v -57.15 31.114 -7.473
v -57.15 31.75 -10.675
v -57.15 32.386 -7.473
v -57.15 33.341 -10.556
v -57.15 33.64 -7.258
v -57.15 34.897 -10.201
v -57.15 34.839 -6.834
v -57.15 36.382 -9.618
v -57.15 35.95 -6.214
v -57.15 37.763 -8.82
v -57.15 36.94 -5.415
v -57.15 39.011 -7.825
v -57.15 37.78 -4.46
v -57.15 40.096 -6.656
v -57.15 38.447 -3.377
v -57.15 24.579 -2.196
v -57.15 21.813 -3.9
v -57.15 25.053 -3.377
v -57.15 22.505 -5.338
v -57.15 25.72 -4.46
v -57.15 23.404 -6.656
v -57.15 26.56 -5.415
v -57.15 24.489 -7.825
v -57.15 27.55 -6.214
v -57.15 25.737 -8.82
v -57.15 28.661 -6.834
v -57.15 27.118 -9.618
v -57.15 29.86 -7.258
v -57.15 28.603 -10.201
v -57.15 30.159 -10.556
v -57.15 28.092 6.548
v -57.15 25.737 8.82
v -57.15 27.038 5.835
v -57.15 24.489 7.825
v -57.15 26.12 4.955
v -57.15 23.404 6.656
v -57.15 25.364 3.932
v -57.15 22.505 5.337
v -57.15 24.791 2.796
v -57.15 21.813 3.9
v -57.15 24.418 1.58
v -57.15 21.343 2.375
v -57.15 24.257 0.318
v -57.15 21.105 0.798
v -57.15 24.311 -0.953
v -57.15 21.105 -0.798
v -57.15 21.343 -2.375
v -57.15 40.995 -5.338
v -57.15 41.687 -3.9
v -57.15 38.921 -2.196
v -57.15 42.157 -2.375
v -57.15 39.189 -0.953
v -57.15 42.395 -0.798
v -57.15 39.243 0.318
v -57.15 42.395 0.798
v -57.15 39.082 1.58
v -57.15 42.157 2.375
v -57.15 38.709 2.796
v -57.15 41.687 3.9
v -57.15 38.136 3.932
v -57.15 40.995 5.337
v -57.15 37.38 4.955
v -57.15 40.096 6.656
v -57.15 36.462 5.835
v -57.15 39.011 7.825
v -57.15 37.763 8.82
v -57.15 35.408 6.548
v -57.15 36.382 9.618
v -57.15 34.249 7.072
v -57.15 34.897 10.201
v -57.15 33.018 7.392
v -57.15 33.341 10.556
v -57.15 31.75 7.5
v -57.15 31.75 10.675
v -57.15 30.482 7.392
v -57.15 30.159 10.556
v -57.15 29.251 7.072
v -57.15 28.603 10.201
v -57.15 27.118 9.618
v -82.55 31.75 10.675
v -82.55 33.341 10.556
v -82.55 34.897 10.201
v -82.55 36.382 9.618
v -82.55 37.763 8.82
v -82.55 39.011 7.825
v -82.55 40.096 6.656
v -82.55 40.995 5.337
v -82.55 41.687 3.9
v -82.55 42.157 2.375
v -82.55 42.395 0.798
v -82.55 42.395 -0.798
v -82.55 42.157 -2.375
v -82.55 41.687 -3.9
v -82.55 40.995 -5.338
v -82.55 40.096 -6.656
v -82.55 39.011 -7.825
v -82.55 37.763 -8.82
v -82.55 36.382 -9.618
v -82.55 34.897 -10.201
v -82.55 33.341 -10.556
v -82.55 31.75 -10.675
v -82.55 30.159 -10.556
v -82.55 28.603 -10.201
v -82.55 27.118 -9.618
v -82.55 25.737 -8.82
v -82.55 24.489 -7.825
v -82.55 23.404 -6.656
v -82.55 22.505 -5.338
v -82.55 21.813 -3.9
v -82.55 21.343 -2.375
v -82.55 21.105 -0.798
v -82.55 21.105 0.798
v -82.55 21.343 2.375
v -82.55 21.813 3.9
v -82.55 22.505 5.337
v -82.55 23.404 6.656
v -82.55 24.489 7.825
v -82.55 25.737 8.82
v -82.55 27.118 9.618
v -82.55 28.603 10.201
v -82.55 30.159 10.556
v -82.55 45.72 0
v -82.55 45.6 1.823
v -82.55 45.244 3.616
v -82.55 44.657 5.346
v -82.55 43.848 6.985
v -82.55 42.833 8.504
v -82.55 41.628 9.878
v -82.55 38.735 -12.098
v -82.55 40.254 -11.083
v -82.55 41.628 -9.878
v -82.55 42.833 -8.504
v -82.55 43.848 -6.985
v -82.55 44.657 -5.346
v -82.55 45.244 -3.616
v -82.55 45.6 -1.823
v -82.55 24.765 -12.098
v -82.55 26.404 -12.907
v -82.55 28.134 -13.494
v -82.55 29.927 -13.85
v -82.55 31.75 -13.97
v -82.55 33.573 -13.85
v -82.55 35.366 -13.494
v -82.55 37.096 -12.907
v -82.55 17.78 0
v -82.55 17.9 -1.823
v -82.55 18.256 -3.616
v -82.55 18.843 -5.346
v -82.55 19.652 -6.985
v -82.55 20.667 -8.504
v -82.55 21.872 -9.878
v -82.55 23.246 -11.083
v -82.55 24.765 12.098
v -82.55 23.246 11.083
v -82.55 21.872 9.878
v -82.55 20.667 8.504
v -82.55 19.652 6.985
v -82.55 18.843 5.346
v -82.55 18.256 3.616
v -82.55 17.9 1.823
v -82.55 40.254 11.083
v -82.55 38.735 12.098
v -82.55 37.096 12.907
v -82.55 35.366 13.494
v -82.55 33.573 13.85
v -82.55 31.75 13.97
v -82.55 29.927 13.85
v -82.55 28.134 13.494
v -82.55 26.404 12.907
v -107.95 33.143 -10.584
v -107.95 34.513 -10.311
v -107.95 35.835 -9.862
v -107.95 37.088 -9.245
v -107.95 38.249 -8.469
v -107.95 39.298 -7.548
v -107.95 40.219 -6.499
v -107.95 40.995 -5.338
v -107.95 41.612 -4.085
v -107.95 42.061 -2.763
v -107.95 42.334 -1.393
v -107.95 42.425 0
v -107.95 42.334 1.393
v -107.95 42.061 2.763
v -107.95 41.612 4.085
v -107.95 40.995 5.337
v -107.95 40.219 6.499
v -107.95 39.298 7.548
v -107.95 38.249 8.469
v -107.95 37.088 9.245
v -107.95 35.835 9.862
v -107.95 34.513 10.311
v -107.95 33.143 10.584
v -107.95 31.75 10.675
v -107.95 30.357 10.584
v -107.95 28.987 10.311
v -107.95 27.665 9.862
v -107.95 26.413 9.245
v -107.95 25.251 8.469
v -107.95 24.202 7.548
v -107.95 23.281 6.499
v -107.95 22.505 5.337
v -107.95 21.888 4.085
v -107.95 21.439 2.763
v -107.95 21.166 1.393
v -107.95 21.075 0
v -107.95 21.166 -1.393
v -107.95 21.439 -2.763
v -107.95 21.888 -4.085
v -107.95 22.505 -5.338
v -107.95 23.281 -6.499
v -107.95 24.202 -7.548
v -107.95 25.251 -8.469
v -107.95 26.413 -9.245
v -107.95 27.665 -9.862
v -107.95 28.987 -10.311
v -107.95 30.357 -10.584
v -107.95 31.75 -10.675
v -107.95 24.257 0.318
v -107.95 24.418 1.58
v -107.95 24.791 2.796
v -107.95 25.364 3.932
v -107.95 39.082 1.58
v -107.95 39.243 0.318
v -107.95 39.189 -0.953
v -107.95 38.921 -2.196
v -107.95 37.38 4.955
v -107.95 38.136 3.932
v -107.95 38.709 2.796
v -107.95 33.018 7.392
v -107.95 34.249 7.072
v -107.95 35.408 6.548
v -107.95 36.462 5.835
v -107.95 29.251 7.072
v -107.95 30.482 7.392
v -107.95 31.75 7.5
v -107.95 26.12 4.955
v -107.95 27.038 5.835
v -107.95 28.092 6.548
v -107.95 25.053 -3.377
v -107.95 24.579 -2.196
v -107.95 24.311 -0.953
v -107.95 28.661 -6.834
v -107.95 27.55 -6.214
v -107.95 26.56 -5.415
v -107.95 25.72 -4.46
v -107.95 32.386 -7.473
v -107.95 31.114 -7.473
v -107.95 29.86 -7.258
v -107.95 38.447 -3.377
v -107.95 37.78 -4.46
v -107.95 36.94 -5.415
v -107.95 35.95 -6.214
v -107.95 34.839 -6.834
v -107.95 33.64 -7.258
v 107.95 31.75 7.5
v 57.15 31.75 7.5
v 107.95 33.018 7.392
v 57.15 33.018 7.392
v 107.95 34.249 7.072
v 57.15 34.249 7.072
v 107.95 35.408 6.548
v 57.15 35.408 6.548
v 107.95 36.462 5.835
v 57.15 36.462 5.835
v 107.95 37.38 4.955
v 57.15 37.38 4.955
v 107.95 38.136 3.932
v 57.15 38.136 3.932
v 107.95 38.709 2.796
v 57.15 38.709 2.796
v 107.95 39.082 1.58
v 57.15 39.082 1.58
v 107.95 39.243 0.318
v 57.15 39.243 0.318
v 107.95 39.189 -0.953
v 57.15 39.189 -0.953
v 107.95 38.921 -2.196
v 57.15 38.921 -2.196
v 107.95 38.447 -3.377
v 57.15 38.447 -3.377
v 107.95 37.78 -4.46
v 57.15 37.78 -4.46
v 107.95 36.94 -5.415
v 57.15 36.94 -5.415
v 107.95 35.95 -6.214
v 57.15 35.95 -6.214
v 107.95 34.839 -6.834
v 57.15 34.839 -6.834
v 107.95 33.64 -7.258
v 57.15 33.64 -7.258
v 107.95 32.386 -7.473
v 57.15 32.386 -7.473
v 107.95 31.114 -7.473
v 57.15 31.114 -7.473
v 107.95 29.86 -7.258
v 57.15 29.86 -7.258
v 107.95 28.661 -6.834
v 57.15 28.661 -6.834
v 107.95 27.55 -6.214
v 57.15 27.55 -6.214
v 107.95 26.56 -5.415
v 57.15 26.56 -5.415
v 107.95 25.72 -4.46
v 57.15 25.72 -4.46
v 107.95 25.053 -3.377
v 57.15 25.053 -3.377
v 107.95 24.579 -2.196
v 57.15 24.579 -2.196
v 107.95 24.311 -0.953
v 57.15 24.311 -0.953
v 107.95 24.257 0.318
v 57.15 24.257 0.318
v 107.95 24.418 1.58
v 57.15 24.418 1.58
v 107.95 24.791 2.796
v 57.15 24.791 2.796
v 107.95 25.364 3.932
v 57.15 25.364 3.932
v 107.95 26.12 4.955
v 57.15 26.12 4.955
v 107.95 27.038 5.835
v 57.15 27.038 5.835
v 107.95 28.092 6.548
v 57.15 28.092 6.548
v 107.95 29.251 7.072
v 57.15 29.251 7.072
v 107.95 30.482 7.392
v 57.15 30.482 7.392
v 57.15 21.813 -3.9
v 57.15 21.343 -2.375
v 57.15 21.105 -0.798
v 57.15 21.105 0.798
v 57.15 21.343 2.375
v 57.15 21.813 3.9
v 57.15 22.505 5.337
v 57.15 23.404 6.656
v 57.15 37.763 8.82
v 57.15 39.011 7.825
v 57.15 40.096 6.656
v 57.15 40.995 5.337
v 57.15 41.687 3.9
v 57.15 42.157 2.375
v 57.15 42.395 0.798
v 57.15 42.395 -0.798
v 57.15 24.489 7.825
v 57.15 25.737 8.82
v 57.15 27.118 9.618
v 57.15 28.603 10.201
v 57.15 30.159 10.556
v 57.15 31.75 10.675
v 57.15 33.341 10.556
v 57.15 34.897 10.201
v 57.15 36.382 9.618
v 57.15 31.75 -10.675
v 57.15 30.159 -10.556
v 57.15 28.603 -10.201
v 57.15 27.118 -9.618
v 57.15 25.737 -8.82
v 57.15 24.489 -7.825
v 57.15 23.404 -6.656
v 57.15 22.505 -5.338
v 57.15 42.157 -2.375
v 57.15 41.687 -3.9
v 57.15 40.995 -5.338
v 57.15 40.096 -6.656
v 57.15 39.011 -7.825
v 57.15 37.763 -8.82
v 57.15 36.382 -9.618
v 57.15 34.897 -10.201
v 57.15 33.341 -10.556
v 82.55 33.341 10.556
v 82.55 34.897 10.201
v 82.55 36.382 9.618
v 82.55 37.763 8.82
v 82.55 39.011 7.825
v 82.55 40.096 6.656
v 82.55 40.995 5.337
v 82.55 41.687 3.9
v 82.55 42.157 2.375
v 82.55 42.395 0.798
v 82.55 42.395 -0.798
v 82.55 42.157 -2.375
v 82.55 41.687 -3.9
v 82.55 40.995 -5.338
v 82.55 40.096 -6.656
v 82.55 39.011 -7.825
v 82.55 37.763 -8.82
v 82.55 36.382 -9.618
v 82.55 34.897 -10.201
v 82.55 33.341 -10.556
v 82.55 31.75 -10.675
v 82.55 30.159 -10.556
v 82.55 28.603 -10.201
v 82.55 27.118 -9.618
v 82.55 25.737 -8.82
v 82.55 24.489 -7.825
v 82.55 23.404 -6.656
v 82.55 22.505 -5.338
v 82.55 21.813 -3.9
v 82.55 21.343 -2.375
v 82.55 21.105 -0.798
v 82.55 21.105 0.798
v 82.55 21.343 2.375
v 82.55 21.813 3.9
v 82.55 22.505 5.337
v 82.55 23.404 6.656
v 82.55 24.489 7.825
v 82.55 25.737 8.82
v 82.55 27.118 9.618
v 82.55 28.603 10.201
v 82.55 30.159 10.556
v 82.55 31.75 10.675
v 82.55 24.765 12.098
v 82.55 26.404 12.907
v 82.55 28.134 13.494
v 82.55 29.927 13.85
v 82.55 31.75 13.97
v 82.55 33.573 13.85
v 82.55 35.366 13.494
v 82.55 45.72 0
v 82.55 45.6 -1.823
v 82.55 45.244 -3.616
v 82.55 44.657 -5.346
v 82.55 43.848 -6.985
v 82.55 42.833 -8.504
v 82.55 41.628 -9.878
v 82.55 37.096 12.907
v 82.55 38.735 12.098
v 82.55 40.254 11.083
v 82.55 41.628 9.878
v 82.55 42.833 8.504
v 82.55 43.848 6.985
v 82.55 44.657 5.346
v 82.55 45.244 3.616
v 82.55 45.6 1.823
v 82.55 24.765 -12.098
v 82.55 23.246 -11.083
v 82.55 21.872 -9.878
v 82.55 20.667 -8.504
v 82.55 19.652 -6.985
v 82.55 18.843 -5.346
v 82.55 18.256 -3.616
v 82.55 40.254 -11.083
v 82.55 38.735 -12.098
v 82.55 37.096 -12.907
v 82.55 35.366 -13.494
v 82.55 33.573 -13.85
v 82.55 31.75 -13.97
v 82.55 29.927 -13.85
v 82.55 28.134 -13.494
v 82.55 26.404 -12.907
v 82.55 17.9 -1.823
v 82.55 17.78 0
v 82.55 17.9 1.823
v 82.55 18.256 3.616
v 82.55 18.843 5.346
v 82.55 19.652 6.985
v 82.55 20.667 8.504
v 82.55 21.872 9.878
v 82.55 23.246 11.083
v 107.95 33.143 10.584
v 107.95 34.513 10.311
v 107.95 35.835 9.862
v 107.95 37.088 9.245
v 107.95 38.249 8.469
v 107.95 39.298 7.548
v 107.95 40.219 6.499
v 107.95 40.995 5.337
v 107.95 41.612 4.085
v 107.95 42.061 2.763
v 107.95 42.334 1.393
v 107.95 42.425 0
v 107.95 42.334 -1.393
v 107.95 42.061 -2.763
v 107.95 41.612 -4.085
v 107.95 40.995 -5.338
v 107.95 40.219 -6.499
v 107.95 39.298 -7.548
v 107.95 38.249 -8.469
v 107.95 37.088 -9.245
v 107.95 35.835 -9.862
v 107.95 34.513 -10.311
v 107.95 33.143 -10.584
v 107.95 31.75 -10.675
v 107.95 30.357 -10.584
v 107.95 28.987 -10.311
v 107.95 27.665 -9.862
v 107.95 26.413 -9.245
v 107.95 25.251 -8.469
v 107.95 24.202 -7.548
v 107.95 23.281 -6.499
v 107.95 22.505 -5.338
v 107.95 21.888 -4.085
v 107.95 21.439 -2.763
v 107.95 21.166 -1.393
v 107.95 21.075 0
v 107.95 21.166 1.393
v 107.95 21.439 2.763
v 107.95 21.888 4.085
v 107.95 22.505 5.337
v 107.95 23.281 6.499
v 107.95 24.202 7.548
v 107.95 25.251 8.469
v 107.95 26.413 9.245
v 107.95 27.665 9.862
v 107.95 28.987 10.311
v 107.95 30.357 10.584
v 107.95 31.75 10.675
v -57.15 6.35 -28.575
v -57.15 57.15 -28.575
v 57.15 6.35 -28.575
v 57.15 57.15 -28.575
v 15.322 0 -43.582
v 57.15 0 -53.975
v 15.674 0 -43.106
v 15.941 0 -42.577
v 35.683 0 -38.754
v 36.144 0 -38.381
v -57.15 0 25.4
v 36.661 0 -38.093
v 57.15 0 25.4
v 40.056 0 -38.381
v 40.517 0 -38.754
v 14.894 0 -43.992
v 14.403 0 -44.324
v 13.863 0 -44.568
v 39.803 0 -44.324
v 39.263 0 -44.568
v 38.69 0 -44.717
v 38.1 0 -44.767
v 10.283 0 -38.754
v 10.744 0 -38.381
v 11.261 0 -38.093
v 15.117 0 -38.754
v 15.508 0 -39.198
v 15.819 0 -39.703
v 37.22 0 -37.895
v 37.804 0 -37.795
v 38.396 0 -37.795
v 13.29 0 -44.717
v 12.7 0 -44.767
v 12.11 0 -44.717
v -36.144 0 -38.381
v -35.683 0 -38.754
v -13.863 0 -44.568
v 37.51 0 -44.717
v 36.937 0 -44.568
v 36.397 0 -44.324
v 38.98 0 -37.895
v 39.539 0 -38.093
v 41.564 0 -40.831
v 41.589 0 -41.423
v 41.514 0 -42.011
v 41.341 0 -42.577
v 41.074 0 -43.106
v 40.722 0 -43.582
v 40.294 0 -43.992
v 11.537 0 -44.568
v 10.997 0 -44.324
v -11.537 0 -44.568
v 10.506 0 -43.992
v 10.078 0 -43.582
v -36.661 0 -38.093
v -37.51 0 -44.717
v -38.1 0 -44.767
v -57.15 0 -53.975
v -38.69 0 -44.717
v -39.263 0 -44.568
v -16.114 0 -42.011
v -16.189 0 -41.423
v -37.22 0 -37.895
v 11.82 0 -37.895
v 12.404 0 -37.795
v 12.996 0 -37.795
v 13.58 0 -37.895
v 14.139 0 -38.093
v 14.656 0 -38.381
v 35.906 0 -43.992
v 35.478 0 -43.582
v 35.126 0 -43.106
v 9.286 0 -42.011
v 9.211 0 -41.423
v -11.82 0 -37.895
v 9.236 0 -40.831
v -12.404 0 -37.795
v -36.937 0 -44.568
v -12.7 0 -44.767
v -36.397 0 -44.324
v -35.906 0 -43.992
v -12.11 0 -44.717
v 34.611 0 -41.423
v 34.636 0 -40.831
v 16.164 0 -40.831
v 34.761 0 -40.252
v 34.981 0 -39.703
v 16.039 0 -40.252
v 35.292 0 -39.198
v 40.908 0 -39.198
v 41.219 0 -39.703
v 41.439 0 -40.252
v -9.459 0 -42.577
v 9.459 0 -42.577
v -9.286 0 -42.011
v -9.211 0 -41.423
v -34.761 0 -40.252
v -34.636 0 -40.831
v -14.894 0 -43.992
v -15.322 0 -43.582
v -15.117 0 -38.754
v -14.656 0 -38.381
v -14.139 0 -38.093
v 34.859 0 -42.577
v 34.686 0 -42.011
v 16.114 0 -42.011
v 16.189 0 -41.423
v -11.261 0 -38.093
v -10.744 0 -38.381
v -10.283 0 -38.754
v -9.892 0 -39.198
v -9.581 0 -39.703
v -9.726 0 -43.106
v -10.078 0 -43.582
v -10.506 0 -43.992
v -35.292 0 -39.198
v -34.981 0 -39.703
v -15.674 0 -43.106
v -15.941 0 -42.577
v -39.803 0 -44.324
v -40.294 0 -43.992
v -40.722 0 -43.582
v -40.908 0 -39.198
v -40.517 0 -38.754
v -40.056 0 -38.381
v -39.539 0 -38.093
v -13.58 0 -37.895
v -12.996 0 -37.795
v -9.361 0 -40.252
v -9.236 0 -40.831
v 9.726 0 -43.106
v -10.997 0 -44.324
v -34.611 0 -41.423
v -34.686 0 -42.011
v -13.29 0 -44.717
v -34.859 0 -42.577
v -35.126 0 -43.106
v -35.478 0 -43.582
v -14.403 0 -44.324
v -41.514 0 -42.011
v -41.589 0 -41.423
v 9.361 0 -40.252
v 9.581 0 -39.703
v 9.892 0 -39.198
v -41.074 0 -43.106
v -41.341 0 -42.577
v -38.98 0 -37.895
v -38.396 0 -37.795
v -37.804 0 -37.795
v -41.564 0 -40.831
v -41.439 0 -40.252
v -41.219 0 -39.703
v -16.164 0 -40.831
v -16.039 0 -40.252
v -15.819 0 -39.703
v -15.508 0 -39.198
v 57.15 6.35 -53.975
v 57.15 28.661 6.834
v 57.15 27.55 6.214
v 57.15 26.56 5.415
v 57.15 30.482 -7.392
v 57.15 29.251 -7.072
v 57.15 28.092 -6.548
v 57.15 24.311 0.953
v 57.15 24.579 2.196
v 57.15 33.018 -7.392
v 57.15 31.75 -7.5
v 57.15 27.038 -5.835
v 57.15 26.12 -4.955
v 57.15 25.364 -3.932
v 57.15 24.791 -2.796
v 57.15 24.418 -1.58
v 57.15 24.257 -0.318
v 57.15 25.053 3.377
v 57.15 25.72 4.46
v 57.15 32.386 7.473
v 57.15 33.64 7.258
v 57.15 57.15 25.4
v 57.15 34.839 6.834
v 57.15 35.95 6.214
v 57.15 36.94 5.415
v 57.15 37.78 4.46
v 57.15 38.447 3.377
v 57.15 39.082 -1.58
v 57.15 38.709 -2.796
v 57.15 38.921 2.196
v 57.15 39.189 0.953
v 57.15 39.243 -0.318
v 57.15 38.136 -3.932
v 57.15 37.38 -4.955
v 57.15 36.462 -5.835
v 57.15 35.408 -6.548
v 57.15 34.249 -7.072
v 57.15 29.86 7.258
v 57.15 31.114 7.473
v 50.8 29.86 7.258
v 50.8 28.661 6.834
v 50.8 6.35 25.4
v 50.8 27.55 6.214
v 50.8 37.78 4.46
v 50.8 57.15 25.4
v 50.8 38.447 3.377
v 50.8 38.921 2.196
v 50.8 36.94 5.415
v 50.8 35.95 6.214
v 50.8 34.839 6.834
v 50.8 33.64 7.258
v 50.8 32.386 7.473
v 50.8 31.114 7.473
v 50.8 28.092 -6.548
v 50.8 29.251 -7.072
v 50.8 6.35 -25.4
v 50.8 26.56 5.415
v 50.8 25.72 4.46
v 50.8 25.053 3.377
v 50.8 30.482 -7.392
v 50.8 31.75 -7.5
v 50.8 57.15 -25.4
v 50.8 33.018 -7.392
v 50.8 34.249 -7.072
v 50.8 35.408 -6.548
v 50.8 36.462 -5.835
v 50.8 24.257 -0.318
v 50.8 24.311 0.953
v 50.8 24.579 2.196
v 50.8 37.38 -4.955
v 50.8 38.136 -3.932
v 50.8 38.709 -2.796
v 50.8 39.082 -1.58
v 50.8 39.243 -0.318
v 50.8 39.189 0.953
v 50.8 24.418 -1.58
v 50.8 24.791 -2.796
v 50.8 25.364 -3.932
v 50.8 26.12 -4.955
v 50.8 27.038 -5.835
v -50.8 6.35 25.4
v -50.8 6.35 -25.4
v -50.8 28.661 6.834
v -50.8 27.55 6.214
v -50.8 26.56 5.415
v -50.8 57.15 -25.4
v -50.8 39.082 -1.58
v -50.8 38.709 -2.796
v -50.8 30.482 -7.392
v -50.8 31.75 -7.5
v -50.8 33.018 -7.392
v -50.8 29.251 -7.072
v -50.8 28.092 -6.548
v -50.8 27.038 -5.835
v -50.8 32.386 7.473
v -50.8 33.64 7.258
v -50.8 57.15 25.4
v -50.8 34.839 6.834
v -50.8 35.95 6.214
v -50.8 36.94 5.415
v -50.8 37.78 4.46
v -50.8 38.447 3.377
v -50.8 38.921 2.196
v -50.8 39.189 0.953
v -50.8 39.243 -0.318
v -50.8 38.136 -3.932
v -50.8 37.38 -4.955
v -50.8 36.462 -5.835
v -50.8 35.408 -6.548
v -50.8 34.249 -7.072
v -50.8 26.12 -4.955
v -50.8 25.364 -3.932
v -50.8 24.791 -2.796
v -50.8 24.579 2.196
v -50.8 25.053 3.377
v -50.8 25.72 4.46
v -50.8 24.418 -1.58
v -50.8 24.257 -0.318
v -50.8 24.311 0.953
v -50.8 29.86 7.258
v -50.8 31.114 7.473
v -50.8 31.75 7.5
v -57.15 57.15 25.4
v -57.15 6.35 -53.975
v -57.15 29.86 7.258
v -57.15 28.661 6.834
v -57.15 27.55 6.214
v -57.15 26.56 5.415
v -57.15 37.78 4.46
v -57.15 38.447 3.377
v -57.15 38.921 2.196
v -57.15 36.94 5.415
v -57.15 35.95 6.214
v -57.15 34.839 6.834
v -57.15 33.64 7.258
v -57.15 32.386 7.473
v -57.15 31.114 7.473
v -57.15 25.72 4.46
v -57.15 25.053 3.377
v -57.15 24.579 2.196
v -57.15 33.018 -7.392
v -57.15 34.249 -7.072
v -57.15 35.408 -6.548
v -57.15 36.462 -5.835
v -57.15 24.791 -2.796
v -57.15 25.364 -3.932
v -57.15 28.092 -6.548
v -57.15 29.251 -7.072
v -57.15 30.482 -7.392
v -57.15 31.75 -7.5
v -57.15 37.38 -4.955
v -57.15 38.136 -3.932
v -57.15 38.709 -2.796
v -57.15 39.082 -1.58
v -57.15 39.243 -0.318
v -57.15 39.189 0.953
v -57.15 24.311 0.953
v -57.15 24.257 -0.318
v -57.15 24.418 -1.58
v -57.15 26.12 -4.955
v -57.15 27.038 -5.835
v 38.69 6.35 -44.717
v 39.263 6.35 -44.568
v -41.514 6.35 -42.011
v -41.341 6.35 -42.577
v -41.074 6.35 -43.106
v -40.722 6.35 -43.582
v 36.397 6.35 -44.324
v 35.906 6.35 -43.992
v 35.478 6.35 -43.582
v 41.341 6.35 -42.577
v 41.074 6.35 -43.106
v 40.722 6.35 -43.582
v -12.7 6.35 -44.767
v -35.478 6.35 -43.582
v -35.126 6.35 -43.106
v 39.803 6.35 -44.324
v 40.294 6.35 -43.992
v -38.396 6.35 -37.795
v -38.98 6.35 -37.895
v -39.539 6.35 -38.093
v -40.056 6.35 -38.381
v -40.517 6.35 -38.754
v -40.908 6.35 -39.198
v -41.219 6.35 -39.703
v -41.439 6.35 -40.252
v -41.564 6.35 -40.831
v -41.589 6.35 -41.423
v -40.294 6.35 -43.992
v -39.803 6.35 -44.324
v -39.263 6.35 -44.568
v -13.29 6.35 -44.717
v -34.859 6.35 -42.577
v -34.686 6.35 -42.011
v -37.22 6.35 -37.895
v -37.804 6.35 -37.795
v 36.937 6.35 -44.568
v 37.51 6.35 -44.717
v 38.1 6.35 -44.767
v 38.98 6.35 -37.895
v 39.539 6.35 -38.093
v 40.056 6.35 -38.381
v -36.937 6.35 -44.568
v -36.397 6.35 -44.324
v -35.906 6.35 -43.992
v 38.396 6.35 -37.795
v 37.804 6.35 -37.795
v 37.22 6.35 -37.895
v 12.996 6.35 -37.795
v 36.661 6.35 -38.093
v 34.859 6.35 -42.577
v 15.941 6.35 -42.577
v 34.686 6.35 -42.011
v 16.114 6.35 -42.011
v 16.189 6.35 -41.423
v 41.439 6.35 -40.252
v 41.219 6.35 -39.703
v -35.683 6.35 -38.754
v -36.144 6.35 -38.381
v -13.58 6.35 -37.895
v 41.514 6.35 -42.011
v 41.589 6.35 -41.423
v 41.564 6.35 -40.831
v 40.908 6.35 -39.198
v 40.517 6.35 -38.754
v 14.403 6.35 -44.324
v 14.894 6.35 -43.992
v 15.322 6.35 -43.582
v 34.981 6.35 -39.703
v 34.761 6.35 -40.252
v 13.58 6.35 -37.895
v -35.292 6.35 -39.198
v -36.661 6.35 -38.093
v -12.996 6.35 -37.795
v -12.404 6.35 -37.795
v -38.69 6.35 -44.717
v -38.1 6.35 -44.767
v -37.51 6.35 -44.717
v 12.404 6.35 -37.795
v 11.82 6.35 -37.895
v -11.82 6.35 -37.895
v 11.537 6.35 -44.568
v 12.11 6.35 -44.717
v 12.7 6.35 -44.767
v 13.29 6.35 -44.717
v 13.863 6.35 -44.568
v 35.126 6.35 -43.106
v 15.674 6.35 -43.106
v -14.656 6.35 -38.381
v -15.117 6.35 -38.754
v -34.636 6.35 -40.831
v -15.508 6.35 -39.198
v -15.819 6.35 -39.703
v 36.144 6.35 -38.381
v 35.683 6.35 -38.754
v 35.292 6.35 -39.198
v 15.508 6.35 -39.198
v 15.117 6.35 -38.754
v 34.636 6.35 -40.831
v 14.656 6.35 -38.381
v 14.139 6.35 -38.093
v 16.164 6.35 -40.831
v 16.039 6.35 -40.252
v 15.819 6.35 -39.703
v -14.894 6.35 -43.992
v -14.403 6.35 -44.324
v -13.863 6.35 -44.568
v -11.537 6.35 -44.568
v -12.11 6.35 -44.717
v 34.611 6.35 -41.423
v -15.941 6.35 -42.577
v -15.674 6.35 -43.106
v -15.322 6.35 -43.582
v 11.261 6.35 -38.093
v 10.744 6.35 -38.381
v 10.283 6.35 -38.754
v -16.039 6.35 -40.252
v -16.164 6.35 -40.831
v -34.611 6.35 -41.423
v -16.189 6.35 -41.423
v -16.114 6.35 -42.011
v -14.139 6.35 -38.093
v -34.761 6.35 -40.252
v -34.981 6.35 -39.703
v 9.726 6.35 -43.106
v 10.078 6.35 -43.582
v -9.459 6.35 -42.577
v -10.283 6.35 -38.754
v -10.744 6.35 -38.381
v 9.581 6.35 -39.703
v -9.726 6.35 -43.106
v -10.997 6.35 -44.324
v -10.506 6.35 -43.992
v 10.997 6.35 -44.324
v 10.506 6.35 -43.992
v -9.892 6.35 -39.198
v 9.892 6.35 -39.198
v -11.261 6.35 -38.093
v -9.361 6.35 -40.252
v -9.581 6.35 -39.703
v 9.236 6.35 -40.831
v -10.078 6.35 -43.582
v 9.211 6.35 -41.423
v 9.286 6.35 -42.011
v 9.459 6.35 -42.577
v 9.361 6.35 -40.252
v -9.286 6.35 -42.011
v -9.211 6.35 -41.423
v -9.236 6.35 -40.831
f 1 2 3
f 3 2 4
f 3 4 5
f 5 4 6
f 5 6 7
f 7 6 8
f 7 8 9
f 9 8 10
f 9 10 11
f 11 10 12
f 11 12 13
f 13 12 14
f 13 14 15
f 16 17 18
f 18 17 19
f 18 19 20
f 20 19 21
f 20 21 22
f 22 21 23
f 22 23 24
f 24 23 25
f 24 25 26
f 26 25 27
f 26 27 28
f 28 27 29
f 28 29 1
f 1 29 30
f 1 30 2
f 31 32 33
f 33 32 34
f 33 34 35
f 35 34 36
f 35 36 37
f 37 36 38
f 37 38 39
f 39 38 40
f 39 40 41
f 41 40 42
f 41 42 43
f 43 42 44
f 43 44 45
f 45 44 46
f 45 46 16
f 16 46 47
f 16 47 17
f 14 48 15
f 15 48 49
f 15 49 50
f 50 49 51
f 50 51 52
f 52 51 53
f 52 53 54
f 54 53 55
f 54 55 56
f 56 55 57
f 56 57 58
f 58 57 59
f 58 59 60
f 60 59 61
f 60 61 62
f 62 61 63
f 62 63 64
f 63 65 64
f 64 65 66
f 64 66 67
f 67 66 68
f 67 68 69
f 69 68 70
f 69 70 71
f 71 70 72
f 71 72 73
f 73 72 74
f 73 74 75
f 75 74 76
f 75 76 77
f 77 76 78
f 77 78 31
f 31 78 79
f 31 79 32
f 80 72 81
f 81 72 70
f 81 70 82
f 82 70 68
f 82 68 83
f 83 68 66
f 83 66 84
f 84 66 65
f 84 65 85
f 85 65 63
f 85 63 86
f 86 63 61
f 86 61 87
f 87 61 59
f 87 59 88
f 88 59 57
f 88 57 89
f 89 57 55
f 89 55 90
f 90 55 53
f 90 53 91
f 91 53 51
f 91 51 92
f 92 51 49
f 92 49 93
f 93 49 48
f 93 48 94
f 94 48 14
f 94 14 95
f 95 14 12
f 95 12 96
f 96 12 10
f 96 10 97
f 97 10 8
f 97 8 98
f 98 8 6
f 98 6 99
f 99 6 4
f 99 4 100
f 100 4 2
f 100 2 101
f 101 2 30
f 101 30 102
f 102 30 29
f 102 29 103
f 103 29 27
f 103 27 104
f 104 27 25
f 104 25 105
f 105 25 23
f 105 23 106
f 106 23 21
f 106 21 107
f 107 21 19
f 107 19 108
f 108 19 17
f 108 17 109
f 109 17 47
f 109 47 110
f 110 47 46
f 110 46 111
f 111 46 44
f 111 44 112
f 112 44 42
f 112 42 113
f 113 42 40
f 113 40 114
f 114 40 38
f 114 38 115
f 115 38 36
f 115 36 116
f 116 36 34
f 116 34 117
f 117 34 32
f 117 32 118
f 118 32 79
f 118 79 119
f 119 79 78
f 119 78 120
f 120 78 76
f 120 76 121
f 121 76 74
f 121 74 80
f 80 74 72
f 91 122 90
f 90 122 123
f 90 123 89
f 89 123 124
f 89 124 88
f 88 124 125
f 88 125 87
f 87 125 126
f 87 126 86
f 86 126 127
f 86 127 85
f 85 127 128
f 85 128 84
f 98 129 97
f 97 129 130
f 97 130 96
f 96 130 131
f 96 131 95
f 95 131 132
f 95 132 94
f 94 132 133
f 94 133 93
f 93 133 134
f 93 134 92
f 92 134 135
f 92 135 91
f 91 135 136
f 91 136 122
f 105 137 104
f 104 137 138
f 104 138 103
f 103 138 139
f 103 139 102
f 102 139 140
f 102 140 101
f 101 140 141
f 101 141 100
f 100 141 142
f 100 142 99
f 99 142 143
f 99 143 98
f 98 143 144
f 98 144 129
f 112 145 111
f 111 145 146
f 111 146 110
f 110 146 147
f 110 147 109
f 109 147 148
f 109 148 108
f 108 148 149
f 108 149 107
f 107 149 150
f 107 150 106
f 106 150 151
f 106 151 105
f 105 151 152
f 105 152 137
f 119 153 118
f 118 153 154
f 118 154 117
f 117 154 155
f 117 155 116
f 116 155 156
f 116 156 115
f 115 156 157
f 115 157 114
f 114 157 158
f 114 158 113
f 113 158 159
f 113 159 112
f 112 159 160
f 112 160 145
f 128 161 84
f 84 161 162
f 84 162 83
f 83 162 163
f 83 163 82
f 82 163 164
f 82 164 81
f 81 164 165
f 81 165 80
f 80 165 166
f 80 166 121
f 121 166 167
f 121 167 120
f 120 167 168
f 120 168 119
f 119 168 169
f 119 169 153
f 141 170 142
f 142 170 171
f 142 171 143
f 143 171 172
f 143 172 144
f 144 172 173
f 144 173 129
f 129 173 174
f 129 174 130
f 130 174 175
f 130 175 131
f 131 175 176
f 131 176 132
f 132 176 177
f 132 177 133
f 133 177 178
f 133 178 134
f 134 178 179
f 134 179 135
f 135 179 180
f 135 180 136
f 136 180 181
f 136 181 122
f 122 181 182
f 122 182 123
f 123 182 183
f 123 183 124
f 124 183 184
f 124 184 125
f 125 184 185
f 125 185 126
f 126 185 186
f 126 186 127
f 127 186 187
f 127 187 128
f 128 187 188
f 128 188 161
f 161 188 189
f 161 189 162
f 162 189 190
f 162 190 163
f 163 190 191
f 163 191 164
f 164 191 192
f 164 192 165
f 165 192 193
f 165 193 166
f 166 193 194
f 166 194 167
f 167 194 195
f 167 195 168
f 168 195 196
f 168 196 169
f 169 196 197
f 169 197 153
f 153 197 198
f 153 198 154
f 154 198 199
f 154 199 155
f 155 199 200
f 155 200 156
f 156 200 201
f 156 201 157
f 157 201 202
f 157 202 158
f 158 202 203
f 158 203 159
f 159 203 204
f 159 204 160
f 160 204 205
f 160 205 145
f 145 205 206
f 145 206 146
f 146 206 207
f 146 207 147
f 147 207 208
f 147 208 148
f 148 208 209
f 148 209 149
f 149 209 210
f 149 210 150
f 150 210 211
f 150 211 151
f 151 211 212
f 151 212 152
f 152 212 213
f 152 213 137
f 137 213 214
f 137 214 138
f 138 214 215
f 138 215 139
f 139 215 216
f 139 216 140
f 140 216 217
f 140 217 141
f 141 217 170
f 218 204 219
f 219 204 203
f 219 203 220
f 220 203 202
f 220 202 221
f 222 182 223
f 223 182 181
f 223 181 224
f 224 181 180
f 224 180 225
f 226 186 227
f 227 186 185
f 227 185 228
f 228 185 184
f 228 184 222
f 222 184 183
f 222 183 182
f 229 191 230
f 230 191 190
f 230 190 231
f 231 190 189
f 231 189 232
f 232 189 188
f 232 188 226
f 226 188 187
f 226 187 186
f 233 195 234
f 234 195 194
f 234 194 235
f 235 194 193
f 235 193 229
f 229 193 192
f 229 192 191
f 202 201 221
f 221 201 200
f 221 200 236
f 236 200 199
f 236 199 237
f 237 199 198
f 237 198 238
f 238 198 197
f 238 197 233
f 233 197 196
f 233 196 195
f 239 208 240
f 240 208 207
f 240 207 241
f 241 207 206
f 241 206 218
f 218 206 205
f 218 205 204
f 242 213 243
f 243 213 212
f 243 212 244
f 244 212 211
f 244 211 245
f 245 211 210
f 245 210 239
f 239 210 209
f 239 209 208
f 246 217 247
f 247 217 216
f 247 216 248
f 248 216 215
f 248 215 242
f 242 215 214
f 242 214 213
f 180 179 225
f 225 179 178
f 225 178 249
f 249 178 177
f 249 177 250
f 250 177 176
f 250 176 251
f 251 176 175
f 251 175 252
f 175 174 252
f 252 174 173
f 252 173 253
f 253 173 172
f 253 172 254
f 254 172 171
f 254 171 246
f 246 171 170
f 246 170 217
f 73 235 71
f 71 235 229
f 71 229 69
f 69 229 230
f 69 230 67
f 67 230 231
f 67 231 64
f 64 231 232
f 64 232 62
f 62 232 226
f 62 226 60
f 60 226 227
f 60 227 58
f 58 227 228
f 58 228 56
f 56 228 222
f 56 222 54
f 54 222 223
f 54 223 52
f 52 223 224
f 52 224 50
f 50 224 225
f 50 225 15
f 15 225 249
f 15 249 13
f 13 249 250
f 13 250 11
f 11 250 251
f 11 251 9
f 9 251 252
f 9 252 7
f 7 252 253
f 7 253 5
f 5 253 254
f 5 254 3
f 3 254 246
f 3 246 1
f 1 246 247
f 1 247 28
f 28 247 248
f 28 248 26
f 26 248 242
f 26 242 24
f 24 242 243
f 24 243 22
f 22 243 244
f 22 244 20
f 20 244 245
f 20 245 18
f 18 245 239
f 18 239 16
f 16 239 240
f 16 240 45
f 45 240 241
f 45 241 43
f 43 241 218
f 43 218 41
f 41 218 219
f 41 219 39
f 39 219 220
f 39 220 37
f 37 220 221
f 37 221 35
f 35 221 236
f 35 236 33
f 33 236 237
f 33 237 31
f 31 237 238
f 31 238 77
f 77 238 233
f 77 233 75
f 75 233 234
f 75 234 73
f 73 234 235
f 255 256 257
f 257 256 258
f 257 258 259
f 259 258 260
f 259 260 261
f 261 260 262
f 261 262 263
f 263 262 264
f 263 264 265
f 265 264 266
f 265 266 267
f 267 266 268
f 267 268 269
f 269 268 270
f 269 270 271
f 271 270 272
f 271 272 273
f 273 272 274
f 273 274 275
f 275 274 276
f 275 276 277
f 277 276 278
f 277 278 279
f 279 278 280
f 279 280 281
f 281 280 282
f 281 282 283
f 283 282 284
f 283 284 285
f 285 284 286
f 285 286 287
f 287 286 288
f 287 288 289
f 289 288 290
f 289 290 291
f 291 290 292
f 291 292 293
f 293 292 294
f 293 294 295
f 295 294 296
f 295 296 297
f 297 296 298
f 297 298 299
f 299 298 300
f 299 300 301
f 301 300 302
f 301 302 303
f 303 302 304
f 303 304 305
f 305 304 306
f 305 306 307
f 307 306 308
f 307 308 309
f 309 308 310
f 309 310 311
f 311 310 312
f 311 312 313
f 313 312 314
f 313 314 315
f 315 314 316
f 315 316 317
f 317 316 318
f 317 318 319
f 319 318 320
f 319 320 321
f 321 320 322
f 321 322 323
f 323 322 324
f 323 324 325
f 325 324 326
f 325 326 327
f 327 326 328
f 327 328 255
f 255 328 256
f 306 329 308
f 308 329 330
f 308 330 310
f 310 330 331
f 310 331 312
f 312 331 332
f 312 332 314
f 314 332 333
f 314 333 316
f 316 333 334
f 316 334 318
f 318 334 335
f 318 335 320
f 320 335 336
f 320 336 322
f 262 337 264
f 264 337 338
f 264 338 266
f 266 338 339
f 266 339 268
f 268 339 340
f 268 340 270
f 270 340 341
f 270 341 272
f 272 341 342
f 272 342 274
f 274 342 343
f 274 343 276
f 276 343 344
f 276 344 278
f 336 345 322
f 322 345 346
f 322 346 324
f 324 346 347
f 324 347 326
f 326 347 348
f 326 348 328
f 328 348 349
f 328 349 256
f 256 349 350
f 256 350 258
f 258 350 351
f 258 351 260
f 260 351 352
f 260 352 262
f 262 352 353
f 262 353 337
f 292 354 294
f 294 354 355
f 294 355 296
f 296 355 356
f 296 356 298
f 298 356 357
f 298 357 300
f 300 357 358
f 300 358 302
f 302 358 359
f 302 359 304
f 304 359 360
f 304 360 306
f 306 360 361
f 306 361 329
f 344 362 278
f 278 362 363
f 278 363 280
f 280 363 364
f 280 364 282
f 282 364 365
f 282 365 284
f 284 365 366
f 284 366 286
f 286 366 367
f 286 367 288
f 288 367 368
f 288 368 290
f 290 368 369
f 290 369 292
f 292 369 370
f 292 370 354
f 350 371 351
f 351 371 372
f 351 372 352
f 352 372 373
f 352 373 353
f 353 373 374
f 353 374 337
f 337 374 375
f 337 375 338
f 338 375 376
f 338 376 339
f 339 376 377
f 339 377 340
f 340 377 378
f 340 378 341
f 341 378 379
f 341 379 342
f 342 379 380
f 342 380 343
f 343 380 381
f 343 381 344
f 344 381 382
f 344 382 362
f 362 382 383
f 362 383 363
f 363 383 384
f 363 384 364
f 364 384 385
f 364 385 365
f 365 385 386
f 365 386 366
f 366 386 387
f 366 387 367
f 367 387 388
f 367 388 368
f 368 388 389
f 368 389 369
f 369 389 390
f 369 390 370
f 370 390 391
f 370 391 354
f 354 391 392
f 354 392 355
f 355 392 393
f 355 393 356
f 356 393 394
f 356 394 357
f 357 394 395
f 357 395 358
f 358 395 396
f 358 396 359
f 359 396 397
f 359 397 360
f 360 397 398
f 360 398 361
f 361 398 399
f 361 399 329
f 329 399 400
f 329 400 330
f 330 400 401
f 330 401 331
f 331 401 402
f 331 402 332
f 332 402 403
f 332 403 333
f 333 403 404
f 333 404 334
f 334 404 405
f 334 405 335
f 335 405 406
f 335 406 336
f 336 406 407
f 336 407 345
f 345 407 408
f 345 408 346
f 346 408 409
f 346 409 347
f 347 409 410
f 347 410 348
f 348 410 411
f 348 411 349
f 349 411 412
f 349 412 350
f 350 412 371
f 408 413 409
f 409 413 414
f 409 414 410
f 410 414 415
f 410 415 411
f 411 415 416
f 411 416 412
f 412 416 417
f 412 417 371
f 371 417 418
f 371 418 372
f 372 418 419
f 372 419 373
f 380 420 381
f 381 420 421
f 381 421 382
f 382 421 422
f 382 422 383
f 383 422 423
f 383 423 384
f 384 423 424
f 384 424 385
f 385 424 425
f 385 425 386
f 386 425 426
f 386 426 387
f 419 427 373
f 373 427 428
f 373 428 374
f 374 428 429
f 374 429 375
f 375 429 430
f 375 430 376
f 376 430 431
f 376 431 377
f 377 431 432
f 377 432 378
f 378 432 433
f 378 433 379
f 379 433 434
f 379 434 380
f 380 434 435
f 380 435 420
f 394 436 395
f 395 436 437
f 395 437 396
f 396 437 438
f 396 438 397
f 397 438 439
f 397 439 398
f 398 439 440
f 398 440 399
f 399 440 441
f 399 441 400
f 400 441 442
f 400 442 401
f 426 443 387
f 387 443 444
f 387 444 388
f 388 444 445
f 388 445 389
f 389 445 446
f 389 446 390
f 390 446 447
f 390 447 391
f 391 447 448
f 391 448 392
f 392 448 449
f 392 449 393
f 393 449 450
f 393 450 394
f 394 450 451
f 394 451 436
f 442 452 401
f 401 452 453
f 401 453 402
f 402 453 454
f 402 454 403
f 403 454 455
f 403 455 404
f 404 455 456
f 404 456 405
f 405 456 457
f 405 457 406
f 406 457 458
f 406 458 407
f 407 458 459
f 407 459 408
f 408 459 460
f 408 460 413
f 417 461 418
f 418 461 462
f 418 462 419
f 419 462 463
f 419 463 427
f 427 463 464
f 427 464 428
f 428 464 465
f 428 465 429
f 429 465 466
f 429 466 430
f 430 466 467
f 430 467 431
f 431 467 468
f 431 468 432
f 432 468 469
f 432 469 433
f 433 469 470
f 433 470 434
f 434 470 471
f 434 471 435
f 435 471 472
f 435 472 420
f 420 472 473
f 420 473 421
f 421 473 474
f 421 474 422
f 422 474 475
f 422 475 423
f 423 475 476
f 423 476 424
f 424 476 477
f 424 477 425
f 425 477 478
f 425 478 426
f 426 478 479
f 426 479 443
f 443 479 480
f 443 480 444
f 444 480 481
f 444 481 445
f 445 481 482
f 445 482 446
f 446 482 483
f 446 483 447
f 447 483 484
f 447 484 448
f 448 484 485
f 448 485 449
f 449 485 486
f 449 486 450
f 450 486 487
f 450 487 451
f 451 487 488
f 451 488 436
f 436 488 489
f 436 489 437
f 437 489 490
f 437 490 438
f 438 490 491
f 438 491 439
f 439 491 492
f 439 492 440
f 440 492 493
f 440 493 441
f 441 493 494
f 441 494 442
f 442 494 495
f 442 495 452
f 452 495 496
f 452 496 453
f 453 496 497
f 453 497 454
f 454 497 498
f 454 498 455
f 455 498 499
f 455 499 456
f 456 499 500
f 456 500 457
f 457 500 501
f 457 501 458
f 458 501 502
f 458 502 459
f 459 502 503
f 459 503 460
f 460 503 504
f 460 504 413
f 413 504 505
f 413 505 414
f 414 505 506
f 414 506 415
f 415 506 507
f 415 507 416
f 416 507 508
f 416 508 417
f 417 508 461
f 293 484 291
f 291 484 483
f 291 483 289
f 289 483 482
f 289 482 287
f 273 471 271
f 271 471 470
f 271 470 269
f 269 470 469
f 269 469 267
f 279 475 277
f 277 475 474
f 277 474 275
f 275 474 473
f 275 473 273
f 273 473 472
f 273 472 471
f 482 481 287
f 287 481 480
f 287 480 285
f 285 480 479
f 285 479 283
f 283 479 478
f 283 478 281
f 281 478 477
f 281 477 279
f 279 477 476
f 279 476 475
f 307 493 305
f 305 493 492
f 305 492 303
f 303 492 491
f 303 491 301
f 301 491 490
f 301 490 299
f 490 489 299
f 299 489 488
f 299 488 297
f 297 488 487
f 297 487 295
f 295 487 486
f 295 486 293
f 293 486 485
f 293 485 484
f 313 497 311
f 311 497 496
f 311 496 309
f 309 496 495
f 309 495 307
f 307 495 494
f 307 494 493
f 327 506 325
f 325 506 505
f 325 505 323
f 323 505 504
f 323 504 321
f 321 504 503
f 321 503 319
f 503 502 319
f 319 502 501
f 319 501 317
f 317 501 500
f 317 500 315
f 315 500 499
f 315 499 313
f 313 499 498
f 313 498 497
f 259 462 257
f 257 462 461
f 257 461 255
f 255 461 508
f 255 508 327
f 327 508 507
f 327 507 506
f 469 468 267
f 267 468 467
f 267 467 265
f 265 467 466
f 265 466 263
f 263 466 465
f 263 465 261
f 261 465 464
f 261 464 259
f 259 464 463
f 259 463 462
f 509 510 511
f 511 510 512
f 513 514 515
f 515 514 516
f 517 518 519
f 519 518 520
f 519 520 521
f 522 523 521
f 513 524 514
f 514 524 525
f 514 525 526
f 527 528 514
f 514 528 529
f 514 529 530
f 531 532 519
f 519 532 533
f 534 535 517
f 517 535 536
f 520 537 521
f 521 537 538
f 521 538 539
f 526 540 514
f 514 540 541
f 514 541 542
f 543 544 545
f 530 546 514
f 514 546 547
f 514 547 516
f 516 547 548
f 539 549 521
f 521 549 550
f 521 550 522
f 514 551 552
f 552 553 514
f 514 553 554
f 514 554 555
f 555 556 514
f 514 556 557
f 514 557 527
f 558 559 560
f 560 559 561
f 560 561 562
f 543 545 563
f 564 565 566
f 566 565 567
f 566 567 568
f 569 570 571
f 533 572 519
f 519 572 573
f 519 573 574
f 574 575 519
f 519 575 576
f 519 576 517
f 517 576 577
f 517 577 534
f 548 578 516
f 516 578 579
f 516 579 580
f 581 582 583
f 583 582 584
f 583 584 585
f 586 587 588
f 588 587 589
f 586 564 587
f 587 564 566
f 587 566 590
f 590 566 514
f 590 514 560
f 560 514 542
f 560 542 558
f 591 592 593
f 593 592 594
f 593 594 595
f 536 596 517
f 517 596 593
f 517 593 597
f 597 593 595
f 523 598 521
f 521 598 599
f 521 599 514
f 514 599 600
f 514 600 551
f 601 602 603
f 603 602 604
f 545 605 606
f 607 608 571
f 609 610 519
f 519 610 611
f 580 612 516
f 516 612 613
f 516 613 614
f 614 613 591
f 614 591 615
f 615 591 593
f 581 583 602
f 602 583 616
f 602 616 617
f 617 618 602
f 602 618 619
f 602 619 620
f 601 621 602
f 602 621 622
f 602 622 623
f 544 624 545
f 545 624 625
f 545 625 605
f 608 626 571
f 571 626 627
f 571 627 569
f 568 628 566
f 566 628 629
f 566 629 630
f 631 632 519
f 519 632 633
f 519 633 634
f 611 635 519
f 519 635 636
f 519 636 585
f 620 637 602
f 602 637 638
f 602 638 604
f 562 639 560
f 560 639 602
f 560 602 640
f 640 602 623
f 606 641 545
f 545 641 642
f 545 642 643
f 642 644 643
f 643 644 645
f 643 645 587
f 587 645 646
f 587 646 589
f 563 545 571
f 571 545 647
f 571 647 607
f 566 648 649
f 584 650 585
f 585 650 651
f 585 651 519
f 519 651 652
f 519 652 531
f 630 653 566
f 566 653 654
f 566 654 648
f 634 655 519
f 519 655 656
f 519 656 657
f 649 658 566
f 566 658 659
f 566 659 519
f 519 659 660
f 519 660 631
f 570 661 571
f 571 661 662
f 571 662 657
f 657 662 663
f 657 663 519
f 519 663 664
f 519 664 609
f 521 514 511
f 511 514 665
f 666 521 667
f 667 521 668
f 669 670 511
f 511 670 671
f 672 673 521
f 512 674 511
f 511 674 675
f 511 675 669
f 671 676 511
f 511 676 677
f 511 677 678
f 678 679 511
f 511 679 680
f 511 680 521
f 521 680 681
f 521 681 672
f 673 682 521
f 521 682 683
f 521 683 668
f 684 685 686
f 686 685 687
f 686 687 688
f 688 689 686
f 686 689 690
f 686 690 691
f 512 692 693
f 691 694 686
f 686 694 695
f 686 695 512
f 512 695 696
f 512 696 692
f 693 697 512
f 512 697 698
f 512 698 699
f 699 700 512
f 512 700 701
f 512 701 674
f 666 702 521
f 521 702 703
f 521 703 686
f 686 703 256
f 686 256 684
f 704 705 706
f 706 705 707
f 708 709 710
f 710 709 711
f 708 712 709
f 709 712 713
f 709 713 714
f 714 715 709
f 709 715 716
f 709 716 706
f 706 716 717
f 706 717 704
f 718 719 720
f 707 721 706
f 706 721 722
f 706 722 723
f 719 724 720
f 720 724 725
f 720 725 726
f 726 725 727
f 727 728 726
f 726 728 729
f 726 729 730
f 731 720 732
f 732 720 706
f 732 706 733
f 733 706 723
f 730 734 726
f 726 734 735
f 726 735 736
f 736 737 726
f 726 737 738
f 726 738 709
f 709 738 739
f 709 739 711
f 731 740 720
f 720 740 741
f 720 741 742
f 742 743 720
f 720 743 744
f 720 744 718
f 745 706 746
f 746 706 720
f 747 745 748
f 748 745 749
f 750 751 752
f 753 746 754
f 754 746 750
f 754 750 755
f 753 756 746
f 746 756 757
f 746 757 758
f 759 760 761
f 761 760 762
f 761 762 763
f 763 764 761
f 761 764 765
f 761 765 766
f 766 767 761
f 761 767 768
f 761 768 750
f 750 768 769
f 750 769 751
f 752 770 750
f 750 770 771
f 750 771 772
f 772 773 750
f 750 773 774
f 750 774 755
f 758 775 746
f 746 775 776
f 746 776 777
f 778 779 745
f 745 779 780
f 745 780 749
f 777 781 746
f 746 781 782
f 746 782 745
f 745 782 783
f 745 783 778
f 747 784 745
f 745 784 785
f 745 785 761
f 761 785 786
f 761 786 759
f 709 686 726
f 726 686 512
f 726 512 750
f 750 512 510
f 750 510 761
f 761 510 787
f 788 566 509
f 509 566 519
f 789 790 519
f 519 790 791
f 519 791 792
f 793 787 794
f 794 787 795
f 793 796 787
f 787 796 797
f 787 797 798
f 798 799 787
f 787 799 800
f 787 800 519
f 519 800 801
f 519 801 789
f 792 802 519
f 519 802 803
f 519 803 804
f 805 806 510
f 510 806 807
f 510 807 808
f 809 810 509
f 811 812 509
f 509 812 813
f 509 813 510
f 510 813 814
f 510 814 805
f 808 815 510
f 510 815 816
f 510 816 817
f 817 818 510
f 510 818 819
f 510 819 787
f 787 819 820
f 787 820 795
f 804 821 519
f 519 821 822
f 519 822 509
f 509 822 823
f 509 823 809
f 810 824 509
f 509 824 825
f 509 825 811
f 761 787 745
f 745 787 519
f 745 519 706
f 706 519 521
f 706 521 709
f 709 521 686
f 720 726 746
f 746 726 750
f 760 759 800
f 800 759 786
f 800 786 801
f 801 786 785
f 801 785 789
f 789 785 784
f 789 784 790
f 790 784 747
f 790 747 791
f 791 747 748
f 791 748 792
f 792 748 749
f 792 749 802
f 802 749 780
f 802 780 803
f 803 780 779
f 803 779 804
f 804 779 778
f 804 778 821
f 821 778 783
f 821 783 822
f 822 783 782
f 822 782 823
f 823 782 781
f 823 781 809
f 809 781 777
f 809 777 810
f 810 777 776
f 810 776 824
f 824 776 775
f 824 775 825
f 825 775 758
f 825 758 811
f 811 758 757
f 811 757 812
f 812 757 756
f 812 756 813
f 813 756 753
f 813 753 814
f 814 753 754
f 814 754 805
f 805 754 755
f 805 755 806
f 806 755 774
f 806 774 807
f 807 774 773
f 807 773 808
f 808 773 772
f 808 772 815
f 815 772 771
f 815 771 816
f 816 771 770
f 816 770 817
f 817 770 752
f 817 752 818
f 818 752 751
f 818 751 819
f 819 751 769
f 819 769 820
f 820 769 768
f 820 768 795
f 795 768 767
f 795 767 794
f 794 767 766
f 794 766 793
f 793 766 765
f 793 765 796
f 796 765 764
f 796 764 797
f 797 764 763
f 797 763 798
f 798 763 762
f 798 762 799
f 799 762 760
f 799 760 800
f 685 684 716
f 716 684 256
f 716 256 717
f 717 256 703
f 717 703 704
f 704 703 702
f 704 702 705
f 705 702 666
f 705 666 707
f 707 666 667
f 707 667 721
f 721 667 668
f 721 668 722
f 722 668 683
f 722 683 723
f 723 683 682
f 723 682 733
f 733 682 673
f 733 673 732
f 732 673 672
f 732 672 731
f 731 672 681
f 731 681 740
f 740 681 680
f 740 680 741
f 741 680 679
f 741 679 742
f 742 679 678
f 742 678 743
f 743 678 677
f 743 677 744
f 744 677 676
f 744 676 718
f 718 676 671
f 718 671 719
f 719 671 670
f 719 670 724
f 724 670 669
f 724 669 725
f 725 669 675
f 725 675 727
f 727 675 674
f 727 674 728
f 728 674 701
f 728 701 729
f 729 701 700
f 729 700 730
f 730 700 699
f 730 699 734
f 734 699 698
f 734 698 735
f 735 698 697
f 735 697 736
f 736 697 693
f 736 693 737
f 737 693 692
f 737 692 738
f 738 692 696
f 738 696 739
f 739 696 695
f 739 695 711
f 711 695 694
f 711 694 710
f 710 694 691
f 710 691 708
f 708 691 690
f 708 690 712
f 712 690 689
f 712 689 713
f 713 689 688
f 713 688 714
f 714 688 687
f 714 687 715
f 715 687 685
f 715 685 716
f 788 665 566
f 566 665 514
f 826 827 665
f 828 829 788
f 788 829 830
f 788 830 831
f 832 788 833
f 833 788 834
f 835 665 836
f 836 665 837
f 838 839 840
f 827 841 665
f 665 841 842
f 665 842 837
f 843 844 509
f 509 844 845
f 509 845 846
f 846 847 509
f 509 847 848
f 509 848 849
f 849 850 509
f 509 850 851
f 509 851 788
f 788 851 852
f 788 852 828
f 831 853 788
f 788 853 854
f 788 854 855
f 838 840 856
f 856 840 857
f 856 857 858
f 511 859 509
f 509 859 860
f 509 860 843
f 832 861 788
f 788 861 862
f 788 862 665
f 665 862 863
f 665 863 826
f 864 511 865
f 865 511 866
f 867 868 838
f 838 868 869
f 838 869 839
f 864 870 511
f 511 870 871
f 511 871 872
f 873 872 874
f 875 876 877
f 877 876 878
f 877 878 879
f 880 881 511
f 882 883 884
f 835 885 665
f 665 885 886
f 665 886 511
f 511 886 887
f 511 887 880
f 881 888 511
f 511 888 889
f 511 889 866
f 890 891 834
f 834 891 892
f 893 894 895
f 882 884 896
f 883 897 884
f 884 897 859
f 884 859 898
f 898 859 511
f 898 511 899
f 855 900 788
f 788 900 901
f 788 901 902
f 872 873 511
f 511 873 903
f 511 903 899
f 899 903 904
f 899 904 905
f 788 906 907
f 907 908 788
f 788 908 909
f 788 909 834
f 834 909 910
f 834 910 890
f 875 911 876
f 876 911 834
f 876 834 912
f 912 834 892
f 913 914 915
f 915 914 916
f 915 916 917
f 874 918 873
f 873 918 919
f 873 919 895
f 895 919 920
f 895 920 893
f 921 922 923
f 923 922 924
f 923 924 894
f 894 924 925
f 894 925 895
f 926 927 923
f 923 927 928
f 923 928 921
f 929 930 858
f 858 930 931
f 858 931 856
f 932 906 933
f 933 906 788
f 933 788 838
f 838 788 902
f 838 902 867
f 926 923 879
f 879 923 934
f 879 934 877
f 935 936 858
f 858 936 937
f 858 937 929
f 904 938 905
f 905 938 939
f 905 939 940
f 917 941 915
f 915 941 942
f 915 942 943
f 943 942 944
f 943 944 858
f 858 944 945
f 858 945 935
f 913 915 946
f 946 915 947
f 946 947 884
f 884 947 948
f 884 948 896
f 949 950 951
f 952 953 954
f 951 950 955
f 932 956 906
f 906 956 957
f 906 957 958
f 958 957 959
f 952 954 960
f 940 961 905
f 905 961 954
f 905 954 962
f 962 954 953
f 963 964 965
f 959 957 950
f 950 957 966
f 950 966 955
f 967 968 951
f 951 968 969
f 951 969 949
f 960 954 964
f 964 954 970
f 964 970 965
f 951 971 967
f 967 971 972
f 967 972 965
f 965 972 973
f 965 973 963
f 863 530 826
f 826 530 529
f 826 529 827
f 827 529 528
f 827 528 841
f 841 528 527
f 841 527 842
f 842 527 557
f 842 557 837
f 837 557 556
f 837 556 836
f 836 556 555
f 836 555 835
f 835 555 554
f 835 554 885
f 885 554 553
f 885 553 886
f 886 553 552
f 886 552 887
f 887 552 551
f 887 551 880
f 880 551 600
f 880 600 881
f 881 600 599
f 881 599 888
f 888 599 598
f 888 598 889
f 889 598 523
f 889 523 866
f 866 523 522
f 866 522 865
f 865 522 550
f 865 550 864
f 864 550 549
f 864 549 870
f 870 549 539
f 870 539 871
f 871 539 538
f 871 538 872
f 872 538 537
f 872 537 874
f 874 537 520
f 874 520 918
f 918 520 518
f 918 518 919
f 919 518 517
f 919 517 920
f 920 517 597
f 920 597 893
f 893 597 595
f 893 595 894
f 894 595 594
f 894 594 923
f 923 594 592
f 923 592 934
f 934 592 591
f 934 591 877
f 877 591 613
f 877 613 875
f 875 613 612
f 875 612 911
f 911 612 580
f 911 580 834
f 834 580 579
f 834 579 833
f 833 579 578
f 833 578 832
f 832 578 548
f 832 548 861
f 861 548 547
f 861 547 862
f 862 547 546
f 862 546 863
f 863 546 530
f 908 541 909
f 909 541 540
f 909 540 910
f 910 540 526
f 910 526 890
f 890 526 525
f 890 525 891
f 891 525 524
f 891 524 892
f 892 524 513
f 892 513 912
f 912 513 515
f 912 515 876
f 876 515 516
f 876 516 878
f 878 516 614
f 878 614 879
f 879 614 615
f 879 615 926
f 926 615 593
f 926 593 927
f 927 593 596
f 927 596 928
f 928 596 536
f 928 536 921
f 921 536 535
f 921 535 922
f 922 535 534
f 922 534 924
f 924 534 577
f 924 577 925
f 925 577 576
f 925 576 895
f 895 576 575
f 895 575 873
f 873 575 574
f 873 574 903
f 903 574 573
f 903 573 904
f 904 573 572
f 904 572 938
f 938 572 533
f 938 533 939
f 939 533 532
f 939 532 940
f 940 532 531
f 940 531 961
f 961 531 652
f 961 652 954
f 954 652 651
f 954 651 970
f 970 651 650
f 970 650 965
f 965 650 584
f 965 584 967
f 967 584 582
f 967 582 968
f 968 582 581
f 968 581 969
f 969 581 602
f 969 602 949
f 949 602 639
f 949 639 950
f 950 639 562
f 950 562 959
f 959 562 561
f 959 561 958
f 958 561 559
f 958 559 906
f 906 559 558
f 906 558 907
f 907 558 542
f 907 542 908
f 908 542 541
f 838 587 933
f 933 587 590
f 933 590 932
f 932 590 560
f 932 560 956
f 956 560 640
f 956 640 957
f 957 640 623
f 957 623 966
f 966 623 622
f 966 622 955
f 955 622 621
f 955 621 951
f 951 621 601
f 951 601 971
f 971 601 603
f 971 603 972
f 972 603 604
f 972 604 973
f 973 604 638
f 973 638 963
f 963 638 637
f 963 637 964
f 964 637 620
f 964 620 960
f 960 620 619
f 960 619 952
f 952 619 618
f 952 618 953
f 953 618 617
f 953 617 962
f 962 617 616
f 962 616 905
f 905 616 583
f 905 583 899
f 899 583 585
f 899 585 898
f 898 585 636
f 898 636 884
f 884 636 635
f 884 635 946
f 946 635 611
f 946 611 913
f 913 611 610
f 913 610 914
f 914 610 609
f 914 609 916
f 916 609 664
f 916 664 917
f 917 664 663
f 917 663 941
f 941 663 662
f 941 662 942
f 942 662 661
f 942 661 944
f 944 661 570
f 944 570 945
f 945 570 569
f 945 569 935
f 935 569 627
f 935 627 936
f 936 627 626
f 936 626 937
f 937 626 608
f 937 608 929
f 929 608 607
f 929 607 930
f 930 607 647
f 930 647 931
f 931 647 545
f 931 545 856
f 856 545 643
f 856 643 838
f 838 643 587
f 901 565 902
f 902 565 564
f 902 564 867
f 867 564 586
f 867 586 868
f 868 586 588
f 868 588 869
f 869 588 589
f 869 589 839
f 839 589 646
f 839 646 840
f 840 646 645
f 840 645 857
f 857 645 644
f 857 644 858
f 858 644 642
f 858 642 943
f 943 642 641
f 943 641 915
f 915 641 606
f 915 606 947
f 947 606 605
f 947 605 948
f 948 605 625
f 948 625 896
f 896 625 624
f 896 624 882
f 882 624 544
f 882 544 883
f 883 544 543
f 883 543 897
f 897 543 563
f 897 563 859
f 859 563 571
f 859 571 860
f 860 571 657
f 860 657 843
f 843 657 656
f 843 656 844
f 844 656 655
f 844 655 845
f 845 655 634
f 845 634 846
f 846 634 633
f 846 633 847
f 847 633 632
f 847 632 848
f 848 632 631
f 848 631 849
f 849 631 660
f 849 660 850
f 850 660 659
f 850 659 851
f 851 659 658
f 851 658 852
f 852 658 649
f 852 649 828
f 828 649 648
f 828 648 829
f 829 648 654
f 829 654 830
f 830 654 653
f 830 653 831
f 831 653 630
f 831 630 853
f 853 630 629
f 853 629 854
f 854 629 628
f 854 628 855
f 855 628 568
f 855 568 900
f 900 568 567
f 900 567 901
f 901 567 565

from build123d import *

# Parameters (mm, degrees)
BOSS_EXTRUDE1_DEPTH     = 25.4
SKETCH2_W               = 114.3
SKETCH2_H               = 57.15
BOSS_EXTRUDE2_DEPTH     = 3.175
CUT_EXTRUDE2_DEPTH      = 126.442638784
CUT_EXTRUDE2_DEPTH_BACK = 126.442638784
SKETCH3_R               = 7.5
SKETCH5_W               = 114.3
SKETCH5_H               = 25.4
SKETCH5_R               = 3.4925
BOSS_EXTRUDE3_DEPTH     = 6.35


with BuildPart() as part:
    # Sketch1 → Boss-Extrude1 (new, symmetric)
    with BuildSketch(Plane.XY):
        Polygon((-57.15, 0), (57.15, 0), (57.15, 6.35), (57.15, 57.15), (50.8, 57.15), (50.8, 6.35), (-50.8, 6.35), (-50.8, 57.15), (-57.15, 57.15), (-57.15, 6.35), align=None)
    extrude(amount=BOSS_EXTRUDE1_DEPTH, both=True)

    # Sketch2 → Boss-Extrude2 (add)
    with BuildSketch(Plane(origin=(0, 0, -25.4), x_dir=(-1, 0, 0), z_dir=(0, 0, -1))):
        with Locations((0, 28.575)):
            Rectangle(SKETCH2_W, SKETCH2_H)
    extrude(amount=BOSS_EXTRUDE2_DEPTH)

    # Sketch3 → Cut-Extrude2 (cut, two sides: drawn at the far end of the back side and taken through both)
    with BuildSketch(Plane(origin=(0, 0, 0), x_dir=(0, 0, -1), z_dir=(1, 0, 0)).offset(-CUT_EXTRUDE2_DEPTH_BACK)):
        with Locations(Location((0, 31.75, 0), (0, 0, 180))):
            Circle(SKETCH3_R)
    extrude(amount=CUT_EXTRUDE2_DEPTH + CUT_EXTRUDE2_DEPTH_BACK, mode=Mode.SUBTRACT)

    # Sketch5 → Boss-Extrude3 (add)
    with BuildSketch(Plane.XZ):
        with Locations((0, -41.275)):
            Rectangle(SKETCH5_W, SKETCH5_H)
        with Locations(Location((38.1, -41.275, 0), (0, 0, 270))):
            Circle(SKETCH5_R, mode=Mode.SUBTRACT)
        with Locations(Location((12.7, -41.275, 0), (0, 0, 270))):
            Circle(SKETCH5_R, mode=Mode.SUBTRACT)
        with Locations(Location((-12.7, -41.275, 0), (0, 0, 270))):
            Circle(SKETCH5_R, mode=Mode.SUBTRACT)
        with Locations(Location((-38.1, -41.275, 0), (0, 0, 270))):
            Circle(SKETCH5_R, mode=Mode.SUBTRACT)
    extrude(amount=-BOSS_EXTRUDE3_DEPTH)


with BuildPart() as body_2:
    # Sketch4 → Revolve1 (revolve)
    with BuildSketch(Plane.XY, mode=Mode.PRIVATE) as revolve1_sk:
        Polygon((57.15, 39.25), (57.15, 42.425), (82.55, 42.425), (82.55, 45.72), (107.95, 42.425), (107.95, 39.25), align=None)
        Polygon((-57.15, 42.425), (-82.55, 42.425), (-82.55, 45.72), (-107.95, 42.425), (-107.95, 39.25), (-57.15, 39.25), align=None)
    revolve(revolve1_sk.sketch.rotate(Axis((-76.2, 31.75, 0), (1, 0, 0)), 90), axis=Axis((-76.2, 31.75, 0), (1, 0, 0)))


solid = Compound([part.part, body_2.part])
